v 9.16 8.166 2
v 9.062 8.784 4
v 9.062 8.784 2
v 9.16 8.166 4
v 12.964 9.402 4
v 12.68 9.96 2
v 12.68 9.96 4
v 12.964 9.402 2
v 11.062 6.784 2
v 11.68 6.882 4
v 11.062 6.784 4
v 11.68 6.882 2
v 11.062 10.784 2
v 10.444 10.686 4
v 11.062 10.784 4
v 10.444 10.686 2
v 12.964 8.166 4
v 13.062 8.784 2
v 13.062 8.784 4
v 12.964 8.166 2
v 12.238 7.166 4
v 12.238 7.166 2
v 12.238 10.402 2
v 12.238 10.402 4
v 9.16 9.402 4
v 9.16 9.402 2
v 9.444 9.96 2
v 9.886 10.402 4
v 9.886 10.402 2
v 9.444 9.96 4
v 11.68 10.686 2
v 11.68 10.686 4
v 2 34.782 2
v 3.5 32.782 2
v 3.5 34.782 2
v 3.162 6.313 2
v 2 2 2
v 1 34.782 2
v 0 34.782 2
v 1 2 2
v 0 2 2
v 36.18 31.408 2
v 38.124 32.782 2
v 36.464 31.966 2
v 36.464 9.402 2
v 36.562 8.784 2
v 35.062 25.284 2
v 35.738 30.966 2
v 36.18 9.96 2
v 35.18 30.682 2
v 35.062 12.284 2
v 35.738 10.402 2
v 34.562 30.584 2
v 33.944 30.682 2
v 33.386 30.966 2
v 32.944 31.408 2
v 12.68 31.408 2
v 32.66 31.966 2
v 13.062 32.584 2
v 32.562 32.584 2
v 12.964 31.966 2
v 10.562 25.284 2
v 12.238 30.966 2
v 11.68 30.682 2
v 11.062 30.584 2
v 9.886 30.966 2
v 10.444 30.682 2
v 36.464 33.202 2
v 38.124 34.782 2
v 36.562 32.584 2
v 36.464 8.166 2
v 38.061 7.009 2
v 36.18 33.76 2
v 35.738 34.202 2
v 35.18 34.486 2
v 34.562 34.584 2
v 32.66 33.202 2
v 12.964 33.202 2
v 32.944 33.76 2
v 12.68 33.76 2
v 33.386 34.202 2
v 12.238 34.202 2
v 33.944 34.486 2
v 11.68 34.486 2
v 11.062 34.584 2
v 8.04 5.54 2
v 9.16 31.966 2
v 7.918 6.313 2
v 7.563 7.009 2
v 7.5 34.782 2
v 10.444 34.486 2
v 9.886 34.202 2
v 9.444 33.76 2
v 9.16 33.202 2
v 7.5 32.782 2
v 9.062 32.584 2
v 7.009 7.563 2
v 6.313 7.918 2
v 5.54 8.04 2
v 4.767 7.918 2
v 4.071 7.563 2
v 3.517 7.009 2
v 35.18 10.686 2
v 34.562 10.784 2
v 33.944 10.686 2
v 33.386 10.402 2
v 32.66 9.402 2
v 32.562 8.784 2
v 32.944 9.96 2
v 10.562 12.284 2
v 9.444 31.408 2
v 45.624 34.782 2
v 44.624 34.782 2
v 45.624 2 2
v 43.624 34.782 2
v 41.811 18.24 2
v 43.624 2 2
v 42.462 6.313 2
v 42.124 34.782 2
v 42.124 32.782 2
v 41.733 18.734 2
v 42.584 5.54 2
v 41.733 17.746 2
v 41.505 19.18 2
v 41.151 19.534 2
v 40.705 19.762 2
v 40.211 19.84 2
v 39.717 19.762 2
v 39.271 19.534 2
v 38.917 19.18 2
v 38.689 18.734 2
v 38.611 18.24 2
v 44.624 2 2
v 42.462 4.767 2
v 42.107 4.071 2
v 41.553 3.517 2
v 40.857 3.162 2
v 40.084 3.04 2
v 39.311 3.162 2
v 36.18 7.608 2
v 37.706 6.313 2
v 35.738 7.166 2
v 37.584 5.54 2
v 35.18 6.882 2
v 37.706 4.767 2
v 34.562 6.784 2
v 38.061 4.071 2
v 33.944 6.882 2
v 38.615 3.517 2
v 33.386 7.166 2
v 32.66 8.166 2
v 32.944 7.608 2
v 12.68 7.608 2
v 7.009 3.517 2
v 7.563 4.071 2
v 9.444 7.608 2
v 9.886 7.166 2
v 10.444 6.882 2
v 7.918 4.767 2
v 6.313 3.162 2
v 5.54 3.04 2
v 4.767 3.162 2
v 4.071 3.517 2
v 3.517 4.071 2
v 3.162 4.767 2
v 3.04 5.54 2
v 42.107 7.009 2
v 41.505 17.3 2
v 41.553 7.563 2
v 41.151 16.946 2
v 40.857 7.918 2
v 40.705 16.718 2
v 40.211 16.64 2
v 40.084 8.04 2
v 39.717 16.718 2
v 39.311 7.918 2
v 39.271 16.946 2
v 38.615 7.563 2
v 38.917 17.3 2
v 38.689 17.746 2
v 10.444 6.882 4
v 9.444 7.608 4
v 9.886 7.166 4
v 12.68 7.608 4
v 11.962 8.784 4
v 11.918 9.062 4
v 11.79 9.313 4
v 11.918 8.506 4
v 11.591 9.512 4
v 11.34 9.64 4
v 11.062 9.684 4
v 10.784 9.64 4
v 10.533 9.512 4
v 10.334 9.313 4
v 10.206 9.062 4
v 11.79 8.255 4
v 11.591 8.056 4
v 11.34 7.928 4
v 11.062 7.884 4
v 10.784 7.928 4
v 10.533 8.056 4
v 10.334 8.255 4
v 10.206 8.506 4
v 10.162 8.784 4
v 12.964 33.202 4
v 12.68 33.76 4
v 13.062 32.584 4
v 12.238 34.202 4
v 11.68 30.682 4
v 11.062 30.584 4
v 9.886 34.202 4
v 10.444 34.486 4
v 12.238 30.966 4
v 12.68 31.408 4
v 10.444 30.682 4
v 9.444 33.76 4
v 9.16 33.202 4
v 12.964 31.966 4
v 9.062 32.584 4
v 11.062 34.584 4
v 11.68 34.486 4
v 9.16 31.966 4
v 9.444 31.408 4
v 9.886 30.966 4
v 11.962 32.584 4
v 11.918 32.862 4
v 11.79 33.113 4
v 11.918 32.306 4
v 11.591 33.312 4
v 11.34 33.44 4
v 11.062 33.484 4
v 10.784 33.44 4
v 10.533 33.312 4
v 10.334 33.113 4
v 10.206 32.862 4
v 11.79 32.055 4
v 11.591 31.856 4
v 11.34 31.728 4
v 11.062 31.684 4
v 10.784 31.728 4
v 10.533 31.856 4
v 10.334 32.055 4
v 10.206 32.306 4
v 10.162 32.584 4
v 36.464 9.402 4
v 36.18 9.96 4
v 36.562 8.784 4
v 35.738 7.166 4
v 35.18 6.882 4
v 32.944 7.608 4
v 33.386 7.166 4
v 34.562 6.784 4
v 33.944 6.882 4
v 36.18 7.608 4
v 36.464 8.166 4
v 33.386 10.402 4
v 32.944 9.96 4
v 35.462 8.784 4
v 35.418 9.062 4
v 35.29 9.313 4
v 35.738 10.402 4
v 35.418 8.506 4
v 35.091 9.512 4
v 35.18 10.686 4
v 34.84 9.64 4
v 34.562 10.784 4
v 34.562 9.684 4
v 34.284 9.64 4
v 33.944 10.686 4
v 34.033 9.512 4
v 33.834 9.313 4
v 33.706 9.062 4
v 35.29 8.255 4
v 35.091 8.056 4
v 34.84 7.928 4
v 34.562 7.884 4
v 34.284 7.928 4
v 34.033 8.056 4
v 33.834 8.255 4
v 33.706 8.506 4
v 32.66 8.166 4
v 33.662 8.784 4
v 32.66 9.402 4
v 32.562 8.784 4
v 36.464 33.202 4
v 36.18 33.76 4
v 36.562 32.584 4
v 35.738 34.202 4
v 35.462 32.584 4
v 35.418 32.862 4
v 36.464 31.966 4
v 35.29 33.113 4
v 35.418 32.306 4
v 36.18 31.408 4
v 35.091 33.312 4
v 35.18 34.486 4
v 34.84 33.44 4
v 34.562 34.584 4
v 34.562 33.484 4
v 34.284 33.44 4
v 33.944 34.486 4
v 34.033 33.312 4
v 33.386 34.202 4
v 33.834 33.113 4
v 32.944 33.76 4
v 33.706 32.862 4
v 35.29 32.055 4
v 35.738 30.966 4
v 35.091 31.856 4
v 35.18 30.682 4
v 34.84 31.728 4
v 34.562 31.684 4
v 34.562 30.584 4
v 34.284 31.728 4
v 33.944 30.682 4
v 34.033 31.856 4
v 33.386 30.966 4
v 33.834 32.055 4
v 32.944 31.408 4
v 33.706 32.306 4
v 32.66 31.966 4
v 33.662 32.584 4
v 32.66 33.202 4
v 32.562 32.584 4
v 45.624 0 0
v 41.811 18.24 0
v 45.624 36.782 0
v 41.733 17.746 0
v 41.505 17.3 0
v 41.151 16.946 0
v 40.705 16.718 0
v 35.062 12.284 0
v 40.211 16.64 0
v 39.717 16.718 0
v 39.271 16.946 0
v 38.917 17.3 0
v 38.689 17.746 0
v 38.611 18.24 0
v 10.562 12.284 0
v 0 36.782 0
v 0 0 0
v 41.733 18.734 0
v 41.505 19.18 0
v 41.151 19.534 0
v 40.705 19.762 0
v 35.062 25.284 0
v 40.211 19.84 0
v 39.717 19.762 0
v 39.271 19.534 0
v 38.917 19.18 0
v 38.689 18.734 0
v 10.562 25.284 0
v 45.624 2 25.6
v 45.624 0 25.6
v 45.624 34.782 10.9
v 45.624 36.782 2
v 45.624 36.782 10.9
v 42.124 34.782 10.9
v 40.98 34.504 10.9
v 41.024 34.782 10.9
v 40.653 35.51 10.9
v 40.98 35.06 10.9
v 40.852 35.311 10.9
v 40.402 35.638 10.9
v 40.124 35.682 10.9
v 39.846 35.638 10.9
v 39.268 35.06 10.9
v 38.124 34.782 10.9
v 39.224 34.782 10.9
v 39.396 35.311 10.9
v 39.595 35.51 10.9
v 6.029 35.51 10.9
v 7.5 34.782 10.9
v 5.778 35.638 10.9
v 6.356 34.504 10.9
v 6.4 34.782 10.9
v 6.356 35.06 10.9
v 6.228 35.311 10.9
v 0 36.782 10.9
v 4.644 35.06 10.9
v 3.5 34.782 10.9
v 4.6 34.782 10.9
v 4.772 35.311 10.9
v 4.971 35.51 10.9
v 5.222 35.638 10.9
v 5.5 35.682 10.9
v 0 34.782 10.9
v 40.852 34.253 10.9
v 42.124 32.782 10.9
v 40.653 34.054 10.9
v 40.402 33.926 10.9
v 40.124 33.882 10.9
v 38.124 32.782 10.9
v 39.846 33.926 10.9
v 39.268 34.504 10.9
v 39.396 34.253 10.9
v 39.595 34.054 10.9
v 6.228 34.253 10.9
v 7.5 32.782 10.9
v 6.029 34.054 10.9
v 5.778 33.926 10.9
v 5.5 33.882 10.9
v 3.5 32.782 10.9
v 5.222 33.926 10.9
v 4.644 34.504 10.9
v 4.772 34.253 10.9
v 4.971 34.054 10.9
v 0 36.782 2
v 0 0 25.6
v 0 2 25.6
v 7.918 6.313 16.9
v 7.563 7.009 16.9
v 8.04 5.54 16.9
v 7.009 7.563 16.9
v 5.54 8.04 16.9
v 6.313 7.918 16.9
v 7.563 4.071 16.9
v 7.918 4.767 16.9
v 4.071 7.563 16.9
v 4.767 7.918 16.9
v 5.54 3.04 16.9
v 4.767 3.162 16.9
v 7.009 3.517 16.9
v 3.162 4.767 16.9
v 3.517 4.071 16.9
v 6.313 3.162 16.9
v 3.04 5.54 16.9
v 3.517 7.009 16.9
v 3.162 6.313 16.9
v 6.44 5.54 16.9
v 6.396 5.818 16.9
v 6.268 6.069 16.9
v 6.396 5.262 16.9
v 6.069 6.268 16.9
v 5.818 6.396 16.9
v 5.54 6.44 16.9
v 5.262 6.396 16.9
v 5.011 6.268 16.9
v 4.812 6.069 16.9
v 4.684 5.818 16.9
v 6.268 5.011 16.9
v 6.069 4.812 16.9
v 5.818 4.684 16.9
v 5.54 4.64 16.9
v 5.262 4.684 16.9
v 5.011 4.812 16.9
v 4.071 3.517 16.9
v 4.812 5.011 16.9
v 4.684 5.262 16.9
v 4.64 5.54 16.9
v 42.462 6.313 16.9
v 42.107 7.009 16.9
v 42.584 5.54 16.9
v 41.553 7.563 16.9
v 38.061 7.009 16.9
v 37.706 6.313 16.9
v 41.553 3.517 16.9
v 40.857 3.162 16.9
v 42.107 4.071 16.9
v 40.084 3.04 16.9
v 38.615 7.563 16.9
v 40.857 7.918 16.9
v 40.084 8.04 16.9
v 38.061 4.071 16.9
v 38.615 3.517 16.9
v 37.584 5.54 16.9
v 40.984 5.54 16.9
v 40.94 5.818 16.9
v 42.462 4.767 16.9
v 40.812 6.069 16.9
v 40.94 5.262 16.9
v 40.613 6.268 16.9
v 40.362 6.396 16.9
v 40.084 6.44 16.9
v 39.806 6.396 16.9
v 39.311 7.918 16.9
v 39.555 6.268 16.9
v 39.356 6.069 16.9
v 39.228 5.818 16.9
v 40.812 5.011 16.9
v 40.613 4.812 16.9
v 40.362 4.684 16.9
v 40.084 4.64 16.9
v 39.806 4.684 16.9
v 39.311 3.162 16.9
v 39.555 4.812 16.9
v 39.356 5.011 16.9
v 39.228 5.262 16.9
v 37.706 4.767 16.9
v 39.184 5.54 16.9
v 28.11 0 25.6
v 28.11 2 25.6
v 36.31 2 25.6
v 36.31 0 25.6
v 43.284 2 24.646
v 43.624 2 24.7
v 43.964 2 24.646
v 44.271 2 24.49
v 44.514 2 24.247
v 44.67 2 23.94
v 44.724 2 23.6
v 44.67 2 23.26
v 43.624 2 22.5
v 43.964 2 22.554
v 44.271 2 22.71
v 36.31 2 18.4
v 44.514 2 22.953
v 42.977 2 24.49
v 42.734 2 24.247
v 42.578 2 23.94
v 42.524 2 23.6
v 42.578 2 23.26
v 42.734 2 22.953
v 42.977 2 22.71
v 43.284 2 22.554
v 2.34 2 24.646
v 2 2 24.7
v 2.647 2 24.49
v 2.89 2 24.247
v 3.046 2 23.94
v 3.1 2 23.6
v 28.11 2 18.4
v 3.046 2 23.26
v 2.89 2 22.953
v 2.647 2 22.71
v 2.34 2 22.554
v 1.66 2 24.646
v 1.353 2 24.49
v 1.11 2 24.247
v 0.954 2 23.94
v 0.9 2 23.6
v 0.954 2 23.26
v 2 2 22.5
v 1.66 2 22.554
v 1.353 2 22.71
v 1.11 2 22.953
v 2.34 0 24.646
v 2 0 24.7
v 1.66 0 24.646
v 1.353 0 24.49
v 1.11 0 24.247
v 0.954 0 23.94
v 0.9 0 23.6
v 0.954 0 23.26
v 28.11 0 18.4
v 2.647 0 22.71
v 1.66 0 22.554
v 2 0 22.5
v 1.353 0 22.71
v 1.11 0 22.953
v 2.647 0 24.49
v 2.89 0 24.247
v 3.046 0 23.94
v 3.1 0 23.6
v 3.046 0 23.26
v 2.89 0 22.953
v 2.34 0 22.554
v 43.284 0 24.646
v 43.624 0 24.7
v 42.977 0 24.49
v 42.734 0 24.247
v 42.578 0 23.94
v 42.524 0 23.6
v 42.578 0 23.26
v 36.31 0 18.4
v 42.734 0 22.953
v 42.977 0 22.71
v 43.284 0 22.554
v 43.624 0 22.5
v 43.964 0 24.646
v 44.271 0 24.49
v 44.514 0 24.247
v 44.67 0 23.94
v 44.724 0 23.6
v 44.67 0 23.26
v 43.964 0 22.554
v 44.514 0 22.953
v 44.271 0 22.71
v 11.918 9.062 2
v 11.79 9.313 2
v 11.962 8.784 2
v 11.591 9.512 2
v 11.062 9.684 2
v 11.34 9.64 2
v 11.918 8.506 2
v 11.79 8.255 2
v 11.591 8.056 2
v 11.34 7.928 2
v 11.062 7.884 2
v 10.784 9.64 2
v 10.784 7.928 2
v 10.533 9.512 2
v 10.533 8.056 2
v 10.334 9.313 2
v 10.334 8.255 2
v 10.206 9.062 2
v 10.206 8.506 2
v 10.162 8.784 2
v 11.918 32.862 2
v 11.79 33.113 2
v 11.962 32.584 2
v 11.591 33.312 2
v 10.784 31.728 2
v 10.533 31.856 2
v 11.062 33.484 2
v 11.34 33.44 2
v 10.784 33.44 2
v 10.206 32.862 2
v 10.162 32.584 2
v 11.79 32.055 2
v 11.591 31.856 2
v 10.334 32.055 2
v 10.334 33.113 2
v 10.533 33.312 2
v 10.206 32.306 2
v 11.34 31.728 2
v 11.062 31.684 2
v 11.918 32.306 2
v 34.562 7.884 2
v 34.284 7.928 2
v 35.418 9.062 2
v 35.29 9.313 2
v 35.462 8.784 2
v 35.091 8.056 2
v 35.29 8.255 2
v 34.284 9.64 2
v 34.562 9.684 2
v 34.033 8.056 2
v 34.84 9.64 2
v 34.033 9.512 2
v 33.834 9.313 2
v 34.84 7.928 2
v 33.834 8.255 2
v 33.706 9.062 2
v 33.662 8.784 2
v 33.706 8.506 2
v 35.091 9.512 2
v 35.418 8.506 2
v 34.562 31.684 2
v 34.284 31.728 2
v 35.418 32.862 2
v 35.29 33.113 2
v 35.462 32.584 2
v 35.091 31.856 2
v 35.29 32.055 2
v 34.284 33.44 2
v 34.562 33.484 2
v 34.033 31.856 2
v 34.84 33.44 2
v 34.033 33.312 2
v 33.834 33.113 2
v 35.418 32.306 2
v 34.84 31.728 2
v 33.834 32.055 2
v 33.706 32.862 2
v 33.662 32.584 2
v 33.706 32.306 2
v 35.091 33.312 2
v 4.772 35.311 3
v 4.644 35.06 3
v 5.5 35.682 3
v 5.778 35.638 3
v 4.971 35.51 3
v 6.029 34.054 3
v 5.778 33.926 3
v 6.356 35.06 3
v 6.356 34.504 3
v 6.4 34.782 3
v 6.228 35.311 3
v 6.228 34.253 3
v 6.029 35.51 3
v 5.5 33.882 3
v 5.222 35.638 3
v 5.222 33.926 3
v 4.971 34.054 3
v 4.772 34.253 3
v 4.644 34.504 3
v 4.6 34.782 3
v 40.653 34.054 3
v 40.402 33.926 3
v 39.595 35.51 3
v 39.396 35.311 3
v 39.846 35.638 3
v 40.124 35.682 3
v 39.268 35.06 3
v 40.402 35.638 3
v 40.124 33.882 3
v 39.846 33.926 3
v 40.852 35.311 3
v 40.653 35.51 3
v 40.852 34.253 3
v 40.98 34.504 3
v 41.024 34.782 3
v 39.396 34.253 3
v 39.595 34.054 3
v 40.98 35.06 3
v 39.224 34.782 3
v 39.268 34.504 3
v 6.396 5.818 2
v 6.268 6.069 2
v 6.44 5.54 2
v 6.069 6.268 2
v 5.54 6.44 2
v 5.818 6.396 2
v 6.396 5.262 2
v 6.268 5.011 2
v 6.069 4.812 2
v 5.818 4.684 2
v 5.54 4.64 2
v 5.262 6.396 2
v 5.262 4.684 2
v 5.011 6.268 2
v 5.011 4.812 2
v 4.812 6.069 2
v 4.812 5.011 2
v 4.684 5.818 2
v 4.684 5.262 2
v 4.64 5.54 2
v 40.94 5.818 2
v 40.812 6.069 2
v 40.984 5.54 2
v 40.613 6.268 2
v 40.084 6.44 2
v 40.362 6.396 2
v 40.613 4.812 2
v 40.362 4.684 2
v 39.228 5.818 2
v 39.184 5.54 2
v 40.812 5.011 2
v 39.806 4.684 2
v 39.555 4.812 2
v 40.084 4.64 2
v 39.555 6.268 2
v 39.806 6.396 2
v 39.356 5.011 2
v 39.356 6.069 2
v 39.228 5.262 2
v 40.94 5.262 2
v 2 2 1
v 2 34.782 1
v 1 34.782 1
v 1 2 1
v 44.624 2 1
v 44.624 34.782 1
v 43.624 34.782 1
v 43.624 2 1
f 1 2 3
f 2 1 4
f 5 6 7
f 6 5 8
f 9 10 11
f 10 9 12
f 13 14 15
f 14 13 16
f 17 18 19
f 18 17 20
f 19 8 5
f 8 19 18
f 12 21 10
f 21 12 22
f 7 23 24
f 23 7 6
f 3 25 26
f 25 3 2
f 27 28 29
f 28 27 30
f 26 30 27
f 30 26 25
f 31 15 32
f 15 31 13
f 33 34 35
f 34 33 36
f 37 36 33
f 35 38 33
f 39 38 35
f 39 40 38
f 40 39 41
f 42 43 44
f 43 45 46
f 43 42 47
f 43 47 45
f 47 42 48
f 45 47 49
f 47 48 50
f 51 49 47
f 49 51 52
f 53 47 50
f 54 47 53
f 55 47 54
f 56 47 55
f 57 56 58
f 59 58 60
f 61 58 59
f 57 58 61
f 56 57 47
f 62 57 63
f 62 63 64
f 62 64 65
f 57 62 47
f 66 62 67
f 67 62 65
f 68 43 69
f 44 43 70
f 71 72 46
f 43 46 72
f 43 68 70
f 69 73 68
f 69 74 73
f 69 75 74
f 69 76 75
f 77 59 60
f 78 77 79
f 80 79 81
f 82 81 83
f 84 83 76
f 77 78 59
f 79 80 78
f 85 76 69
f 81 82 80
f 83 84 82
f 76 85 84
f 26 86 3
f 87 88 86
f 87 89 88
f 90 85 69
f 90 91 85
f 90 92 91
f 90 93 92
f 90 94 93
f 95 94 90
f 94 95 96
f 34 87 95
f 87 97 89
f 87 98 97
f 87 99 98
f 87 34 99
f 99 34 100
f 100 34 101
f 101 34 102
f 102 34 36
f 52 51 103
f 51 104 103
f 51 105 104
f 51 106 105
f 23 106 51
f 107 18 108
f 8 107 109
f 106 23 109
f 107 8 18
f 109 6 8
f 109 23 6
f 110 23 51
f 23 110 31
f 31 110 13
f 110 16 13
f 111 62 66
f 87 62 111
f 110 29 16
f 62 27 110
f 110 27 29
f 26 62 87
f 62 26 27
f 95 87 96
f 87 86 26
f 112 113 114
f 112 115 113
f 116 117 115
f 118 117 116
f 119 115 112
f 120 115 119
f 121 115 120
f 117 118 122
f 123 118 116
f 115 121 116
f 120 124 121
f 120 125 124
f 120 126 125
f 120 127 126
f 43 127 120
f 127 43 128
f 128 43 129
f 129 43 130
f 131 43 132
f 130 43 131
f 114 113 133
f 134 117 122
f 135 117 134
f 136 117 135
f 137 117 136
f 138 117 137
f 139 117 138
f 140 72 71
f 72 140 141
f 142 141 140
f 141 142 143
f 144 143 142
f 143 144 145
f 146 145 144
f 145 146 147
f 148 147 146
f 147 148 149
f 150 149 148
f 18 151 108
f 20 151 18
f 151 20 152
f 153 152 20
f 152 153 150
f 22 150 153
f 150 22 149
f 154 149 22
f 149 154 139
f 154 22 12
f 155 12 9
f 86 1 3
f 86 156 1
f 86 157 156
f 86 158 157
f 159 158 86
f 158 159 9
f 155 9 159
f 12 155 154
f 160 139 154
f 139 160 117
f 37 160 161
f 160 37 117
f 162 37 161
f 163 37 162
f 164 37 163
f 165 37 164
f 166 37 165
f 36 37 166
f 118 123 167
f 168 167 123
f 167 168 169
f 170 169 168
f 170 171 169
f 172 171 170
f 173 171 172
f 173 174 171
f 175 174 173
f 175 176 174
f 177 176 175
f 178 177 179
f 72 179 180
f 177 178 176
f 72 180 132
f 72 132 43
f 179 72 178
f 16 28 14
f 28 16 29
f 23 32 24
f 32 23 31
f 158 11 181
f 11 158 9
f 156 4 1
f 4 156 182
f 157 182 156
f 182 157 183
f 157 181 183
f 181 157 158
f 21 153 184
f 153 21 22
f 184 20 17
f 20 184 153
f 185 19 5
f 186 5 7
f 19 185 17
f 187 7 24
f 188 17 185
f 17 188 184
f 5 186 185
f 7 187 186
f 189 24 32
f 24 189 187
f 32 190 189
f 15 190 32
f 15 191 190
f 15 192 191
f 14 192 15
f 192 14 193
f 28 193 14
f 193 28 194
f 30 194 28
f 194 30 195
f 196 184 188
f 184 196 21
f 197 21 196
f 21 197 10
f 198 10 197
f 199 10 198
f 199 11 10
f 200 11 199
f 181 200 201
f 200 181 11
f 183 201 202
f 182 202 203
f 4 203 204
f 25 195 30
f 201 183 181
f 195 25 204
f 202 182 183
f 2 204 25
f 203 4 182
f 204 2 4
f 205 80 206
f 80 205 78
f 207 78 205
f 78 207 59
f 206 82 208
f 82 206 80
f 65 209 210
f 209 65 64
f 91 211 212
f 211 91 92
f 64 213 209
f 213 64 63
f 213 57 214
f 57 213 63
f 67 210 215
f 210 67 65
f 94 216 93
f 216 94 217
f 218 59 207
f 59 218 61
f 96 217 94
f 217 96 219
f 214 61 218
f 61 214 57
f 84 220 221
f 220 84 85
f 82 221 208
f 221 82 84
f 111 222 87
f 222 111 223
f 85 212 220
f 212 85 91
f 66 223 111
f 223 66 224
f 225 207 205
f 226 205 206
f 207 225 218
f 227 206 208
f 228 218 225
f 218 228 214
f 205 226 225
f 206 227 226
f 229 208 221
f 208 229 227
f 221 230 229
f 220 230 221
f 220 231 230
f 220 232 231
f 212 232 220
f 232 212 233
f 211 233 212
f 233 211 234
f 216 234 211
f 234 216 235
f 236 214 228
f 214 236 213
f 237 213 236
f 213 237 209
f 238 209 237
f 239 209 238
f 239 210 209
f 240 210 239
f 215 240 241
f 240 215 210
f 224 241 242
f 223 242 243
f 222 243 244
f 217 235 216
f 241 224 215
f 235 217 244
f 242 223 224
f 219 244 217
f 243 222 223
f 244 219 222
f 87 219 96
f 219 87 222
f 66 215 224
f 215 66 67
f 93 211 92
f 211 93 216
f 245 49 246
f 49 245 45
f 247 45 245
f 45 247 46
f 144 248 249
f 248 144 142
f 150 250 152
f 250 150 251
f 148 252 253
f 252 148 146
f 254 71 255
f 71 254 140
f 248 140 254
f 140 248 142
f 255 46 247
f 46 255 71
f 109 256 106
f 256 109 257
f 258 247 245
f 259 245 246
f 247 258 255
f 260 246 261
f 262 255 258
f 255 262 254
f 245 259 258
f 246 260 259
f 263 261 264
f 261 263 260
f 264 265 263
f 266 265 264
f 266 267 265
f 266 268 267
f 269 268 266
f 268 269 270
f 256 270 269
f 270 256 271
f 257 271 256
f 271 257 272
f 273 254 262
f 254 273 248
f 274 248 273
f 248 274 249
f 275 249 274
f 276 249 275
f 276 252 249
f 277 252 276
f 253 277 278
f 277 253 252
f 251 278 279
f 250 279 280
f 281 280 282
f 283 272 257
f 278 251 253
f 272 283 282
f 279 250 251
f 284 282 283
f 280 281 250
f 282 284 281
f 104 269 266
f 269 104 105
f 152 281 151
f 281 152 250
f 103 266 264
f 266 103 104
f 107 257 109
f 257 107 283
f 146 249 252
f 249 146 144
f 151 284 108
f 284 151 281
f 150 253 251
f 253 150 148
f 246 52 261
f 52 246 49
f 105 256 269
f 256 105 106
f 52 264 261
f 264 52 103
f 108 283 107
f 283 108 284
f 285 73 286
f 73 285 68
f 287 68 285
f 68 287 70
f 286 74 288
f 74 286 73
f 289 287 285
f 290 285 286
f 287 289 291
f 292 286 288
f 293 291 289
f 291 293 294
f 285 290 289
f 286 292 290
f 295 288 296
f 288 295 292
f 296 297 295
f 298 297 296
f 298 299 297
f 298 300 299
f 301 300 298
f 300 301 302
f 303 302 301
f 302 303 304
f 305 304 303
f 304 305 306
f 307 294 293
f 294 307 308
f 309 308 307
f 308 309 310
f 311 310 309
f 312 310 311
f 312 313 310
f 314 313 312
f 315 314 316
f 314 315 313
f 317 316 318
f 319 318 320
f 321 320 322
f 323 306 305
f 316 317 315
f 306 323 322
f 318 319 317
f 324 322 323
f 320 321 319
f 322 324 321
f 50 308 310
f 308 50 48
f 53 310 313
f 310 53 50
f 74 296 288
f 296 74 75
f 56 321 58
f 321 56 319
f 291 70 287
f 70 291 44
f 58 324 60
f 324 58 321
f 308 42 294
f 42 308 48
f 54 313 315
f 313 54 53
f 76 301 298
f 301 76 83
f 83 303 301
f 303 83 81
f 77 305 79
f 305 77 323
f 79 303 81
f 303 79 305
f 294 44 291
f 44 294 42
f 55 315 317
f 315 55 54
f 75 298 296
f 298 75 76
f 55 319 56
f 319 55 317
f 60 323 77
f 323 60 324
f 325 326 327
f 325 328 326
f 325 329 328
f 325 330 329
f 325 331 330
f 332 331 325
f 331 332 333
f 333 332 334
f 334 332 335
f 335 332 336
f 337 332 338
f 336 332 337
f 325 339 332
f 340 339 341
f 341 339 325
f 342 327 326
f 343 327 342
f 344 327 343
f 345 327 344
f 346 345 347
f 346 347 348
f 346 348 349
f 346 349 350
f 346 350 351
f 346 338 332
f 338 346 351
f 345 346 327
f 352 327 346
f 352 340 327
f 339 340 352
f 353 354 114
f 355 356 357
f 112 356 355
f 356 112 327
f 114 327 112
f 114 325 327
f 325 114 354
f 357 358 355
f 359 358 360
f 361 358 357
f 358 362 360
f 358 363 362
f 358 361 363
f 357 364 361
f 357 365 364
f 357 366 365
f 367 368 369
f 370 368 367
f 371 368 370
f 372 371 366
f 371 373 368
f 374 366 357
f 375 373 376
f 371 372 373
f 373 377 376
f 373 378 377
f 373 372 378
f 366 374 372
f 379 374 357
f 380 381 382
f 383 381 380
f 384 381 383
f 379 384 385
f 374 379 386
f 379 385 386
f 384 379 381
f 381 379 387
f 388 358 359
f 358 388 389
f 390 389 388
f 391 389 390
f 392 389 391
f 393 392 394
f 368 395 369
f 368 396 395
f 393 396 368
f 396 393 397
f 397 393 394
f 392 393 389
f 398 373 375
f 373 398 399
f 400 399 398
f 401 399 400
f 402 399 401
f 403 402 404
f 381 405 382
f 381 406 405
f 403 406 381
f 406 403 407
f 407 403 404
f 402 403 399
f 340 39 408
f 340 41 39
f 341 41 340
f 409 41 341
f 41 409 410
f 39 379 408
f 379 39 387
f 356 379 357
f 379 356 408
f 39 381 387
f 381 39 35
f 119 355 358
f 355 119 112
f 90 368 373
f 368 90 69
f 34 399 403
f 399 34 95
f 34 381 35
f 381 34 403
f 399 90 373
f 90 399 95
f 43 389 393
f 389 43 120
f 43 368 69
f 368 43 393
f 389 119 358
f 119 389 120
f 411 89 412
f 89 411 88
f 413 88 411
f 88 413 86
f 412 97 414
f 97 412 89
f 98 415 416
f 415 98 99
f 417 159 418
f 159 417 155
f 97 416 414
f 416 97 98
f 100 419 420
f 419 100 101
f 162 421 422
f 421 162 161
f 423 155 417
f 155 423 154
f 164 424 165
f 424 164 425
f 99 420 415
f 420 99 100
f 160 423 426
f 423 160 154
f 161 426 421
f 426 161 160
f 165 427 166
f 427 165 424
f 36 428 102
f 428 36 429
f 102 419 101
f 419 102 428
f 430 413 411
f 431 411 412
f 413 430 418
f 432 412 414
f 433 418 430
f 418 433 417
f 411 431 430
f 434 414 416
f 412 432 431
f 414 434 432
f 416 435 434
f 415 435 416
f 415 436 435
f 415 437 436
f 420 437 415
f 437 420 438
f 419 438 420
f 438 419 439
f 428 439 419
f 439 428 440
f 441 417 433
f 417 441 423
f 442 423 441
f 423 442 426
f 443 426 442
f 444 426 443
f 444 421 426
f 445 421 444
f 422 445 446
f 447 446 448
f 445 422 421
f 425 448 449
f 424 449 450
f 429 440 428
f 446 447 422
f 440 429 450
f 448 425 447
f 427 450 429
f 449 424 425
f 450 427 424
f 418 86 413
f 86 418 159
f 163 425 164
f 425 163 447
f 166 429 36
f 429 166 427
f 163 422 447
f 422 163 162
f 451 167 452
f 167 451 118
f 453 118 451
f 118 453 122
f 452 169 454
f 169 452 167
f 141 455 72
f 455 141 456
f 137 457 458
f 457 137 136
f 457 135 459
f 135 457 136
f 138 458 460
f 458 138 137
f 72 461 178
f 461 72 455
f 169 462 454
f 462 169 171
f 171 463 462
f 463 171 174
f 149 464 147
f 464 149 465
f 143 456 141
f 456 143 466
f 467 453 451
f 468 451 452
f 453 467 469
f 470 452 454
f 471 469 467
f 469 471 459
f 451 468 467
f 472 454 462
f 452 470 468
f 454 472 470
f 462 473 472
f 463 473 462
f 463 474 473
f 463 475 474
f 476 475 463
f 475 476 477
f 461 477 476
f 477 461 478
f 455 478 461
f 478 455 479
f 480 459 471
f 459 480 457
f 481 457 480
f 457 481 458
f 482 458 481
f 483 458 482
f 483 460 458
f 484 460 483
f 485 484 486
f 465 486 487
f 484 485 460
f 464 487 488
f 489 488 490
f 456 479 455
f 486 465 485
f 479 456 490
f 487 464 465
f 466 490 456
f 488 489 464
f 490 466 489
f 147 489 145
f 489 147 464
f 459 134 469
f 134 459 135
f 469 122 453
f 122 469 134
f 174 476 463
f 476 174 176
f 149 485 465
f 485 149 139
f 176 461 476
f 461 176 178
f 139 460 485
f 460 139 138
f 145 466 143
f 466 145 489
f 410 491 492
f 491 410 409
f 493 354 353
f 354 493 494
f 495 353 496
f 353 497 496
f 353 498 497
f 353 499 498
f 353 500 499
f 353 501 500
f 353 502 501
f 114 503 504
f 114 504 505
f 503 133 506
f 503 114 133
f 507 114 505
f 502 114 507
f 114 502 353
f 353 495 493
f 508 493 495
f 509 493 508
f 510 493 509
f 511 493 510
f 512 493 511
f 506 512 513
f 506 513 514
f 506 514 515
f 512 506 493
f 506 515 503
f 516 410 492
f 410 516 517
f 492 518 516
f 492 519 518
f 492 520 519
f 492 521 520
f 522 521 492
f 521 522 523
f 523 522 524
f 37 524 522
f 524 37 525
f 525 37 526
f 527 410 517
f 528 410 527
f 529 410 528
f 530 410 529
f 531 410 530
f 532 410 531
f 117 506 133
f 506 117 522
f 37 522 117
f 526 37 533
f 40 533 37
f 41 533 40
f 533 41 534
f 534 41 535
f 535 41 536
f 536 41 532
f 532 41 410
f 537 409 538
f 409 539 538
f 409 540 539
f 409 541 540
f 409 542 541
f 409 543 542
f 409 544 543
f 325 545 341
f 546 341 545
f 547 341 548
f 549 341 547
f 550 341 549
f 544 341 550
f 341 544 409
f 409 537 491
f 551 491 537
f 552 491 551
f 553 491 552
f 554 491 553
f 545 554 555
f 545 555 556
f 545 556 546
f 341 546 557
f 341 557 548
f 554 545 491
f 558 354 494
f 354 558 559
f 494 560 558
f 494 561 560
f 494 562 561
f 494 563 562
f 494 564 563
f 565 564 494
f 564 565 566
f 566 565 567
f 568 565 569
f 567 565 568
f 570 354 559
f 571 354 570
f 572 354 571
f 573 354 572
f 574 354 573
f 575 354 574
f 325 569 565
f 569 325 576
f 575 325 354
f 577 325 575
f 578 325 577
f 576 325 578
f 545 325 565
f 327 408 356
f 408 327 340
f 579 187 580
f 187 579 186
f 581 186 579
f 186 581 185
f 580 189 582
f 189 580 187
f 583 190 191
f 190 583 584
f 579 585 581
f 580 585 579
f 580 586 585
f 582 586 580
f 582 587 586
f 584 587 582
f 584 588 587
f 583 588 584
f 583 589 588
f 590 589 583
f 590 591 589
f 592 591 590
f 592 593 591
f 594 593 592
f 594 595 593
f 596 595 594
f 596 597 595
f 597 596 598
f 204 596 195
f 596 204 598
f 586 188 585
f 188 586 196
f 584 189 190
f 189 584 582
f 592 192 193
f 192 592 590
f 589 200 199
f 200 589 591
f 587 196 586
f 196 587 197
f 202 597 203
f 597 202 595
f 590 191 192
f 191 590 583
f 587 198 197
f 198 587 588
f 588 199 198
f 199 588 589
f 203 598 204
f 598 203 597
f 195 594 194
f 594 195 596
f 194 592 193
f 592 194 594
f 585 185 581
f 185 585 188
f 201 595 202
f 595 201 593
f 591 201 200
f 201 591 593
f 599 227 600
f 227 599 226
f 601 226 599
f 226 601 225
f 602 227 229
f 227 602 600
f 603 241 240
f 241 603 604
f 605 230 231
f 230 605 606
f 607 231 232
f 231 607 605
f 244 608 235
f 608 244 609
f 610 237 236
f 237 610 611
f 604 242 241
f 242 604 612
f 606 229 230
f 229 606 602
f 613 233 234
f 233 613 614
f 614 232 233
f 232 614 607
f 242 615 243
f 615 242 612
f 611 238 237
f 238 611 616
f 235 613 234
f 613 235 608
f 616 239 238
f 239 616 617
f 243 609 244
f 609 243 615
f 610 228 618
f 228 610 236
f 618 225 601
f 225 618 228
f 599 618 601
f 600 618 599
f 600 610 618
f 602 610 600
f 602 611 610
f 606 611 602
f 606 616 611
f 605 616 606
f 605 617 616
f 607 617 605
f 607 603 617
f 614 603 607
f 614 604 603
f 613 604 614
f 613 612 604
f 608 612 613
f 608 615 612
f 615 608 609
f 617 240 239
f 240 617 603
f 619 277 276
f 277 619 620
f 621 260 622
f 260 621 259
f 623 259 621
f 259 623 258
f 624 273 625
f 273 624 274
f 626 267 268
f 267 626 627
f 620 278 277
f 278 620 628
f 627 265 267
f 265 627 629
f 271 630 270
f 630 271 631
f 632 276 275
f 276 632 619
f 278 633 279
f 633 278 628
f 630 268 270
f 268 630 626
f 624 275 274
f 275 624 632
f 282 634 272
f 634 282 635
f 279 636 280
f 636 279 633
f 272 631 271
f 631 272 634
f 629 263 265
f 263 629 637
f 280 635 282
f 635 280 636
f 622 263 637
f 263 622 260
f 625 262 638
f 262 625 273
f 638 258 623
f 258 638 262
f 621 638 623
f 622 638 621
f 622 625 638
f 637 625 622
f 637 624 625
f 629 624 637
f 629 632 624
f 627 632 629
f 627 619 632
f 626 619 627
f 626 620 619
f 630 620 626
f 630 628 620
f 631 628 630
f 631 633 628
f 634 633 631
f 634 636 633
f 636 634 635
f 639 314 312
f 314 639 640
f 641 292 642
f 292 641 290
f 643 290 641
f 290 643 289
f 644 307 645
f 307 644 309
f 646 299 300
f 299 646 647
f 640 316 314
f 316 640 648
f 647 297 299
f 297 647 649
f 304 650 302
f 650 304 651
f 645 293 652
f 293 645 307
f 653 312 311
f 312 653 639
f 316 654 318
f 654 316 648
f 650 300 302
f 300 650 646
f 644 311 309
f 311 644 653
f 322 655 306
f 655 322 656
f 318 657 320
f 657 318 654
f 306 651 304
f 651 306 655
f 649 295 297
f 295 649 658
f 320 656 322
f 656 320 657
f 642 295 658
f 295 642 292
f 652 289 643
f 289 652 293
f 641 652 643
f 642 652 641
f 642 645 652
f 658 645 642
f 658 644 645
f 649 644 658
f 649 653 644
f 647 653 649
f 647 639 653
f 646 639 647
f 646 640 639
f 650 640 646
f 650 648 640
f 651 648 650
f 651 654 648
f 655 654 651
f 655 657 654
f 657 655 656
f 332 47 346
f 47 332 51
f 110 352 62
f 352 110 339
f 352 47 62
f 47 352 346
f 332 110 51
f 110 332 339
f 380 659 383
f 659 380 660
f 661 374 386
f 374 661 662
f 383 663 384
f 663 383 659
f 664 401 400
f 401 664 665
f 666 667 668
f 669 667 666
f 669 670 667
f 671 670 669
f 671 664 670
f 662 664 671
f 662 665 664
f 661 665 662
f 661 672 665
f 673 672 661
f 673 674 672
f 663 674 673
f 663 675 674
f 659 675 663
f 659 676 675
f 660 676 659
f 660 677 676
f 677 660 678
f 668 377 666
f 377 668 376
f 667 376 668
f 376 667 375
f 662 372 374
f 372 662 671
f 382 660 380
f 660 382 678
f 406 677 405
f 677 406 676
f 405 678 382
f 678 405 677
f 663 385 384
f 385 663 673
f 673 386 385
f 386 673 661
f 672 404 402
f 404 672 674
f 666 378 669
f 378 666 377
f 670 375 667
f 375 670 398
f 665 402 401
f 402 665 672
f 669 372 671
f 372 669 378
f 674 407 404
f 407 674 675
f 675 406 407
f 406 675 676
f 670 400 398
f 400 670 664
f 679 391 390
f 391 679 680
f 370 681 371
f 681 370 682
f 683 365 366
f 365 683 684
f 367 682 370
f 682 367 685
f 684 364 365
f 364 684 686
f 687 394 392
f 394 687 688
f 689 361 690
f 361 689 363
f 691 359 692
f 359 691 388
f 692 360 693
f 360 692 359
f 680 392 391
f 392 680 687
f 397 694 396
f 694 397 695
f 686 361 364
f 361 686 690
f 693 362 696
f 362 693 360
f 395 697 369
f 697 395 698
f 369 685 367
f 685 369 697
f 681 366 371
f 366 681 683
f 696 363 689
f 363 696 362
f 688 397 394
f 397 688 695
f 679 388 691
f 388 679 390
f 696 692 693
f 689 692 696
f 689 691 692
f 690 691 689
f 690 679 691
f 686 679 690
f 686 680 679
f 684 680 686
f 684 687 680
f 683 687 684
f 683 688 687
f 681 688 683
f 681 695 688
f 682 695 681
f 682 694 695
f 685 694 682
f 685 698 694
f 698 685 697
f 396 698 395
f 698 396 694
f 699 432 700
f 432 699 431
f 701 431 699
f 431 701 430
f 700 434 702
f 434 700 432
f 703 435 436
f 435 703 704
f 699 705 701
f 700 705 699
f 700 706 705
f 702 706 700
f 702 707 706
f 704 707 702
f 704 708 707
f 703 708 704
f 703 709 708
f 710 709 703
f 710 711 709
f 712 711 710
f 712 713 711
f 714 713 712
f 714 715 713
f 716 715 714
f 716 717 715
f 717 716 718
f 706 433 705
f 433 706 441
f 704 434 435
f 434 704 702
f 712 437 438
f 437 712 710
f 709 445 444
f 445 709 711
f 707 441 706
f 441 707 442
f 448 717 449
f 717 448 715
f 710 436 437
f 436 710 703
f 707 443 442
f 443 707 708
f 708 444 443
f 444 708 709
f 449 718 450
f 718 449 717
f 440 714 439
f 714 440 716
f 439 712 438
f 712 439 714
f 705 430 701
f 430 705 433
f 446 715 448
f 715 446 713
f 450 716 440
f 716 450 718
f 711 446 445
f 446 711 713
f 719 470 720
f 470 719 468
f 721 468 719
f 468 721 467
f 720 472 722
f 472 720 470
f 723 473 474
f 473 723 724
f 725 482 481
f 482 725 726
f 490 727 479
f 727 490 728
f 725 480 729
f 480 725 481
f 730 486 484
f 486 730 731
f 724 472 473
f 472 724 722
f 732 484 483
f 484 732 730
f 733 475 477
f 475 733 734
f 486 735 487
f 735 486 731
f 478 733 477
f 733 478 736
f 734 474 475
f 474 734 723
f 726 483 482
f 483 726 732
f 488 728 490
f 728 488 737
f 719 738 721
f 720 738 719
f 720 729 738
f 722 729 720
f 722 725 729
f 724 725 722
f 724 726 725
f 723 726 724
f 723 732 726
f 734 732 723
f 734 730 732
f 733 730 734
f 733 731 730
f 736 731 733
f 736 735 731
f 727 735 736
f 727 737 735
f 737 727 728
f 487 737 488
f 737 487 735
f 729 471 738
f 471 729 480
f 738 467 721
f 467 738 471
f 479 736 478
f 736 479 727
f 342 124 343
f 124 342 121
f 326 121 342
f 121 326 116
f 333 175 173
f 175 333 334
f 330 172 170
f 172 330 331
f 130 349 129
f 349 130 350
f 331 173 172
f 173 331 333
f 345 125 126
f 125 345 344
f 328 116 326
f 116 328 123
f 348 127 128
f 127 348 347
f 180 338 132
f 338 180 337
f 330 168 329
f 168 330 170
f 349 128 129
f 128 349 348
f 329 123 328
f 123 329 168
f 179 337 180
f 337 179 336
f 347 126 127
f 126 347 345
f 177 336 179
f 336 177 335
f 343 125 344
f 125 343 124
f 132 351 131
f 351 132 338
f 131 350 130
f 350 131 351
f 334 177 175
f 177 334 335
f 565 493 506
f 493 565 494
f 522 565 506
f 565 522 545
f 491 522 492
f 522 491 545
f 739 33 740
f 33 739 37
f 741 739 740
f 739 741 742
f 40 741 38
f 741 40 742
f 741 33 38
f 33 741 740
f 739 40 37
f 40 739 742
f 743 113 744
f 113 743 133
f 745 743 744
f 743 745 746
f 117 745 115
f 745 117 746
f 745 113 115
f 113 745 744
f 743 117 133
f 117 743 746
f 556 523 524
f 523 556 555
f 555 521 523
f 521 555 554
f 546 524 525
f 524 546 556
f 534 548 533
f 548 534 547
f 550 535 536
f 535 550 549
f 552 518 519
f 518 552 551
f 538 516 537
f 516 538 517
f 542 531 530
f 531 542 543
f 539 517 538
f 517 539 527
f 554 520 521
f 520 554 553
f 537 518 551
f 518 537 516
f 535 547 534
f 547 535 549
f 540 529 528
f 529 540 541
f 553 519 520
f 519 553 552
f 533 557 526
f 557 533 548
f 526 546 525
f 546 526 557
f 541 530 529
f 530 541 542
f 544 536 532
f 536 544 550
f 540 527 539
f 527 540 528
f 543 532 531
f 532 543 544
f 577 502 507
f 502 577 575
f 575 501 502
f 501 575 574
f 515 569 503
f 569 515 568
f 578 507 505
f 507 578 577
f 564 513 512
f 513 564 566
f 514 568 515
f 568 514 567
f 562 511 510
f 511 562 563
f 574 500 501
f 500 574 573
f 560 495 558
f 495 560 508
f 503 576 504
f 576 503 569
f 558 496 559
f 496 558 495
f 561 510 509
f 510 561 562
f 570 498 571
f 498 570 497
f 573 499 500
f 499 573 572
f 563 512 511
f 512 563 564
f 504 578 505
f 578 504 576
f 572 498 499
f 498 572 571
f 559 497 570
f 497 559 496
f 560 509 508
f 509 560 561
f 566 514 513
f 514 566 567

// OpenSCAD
// file: settings.scad
// SPDX-FileCopyrightText: 2022-2024 Rafael G. Martins <rafael@rafaelmartins.eng.br>
// SPDX-License-Identifier: CERN-OHL-S-2.0

include <../lib/ssd1306.scad>

screw_d = 2;
screw_h = 8;
thickness = 2;
gap = 0;

front_screw_padding = 3.5;

pcb_base_d = 5;
pcb_base_screw_d = 1.8;
pcb_screw_padding = 2.54;
pcb_thickness = 1.6;

pcb_gap = 1;
pcb_padding_x = thickness + pcb_gap;
pcb_padding_y = thickness + pcb_gap;

display_pcb_length = 39.624;
display_pcb_width = 33.782;

display_pcb0_x = pcb_padding_x;
display_pcb0_y = pcb_padding_y;

display_length = display_pcb_length + 2 * pcb_padding_x;
display_width = display_pcb_width + pcb_padding_y;

switches_pcb_length = 84.582;
switches_pcb_width = 45.974;

switches_length = switches_pcb_length + 2 * pcb_padding_x;
switches_width = switches_pcb_width + 2 * pcb_padding_y;

switches_pcb_base_distance_x = 39.751;
switches_pcb_base_distance_y = 20.447;

oled_socket_height = 8.5;
oled_pin0_y = 5.334;
oled0_x = (display_length - ssd1306_pcb_base_spacing_x) / 2;
oled0_y = display_pcb0_y + oled_pin0_y + ssd1306_pin_distance_y;

display_pcb_base_distance = 34.544;
display_pcb_base_height = 2.8 + oled_socket_height + ssd1306_pcb_thickness + ssd1306_pcb_base_height;

switches_pcb_base_height = 6 - thickness;

usb_height = 4.4;
usb_width = 8.2;
usb_distance_x = pcb_padding_x + 29.210 - usb_width / 2;
usb_distance_z = thickness + display_pcb_base_height + pcb_thickness - 0.1;

display_height = usb_distance_z + usb_height + 0.8 + thickness;
display_height_in = display_pcb_base_height - switches_pcb_base_height - thickness;

switches_height = display_height - display_pcb_base_height + switches_pcb_base_height;

led0_x = 37.211;
led0_y = 15.24;
led_d = 3.2;

key_dim = 16;
key_distance = 19.304;
key0_x = 13.335 - key_dim / 2;
key0_y = key0_x;

base_screw_d = 1.8;
base_screw_h = 5;
base_screw_padding = 8;
base_screw_padding_bottom = 25;

base_length = switches_length;
base_width = display_width + switches_width - pcb_gap - thickness;
base_height = 16;

back_screw3_padding = 10;
// file: ../lib/ssd1306.scad
// SPDX-FileCopyrightText: 2022-2024 Rafael G. Martins <rafael@rafaelmartins.eng.br>
// SPDX-License-Identifier: CERN-OHL-S-2.0

ssd1306_pcb_thickness = 1.6;
ssd1306_pcb_base_height = 2;
ssd1306_pcb_base_d = 4;
ssd1306_pcb_base_screw_d = 1.8;
ssd1306_pcb_base_spacing_x = 23.5;
ssd1306_pcb_base_spacing_y = 23.8;
ssd1306_screen_width = 24.5;
ssd1306_screen_height = 13;
ssd1306_screen_distance_x = (ssd1306_pcb_base_spacing_x - ssd1306_screen_width) / 2;
ssd1306_screen_distance_y = 3.5;
ssd1306_pin_distance_y = 0.45;


module ssd1306_add(thickness) {
    translate([-ssd1306_pcb_base_d / 2, -ssd1306_pcb_base_d / 2, 0])
        cube([ssd1306_pcb_base_spacing_x + ssd1306_pcb_base_d,
              ssd1306_pcb_base_spacing_y + ssd1306_pcb_base_d,
              thickness]);

    for(i=[0:1])
        for(j=[0:1])
            translate([i * ssd1306_pcb_base_spacing_x, j * ssd1306_pcb_base_spacing_y, thickness])
                cylinder(ssd1306_pcb_base_height, d=ssd1306_pcb_base_d, $fn=20);
}


module ssd1306_sub(thickness) {
    translate([ssd1306_screen_distance_x, ssd1306_screen_distance_y, 0])
        cube([ssd1306_screen_width, ssd1306_screen_height, thickness]);

    for(i=[0:1])
        for(j=[0:1])
            translate([i * ssd1306_pcb_base_spacing_x, j * ssd1306_pcb_base_spacing_y, thickness])
                cylinder(ssd1306_pcb_base_height, d=ssd1306_pcb_base_screw_d, $fn=20);
}
// file: ../lib/screw-base.scad
// SPDX-FileCopyrightText: 2022-2024 Rafael G. Martins <rafael@rafaelmartins.eng.br>
// SPDX-License-Identifier: CERN-OHL-S-2.0

function screw_base_dim(screw_d) = screw_d + 2;
function screw_base_height(screw_h) = screw_h + 1;


module screw_base_add(screw_d, screw_h) {
    cube([screw_base_dim(screw_d), screw_base_dim(screw_d), screw_base_height(screw_h)]);
}


module screw_base_sub(screw_d, screw_h) {
    translate([screw_base_dim(screw_d) / 2, screw_base_dim(screw_d) / 2, 0])
        cylinder(screw_h, d=screw_d - 0.2, $fn=20);
}
// main file
// SPDX-FileCopyrightText: 2022-2024 Rafael G. Martins <rafael@rafaelmartins.eng.br>
// SPDX-License-Identifier: CERN-OHL-S-2.0

include <../lib/screw-base.scad>
include <../lib/ssd1306.scad>
include <settings.scad>


difference() {
    union() {
        cube([display_length, thickness, display_height]);
        cube([display_length, display_width, thickness]);

        translate([oled0_x, oled0_y, 0])
            ssd1306_add(thickness);

        translate([0, display_width - thickness, thickness]) {
            cube([display_length, thickness, display_height_in]);

            translate([front_screw_padding, -screw_base_dim(screw_d) / 2,
                       screw_base_height(display_height_in - 1)])
                rotate([180, 0, 90])
                    screw_base_add(screw_d, display_height_in - 1);
            translate([display_length - front_screw_padding - screw_base_dim(screw_d),
                       -screw_base_dim(screw_d) / 2, screw_base_height(display_height_in - 1)])
                rotate([180, 0, 90])
                    screw_base_add(screw_d, display_height_in - 1);
        }

        translate([display_pcb0_x, display_pcb0_y, 0]) {
            translate([pcb_screw_padding, pcb_screw_padding, thickness]) {
                cylinder(h=display_pcb_base_height, d=pcb_base_d, $fn=20);
                translate([display_pcb_base_distance, 0, 0])
                    cylinder(h=display_pcb_base_height, d=pcb_base_d, $fn=20);
            }
        }
    }

    translate([oled0_x, oled0_y, 0])
        ssd1306_sub(thickness);

    translate([0, display_width - thickness, thickness]) {
        translate([front_screw_padding, -screw_base_dim(screw_d) / 2,
                   screw_base_height(display_height_in - 1)])
            rotate([180, 0, 90])
                screw_base_sub(screw_d, display_height_in - 1);
        translate([display_length - front_screw_padding - screw_base_dim(screw_d),
                   -screw_base_dim(screw_d) / 2, screw_base_height(display_height_in - 1)])
            rotate([180, 0, 90])
                screw_base_sub(screw_d, display_height_in - 1);
    }

    translate([display_pcb0_x, display_pcb0_y, 0]) {
        translate([pcb_screw_padding, pcb_screw_padding, thickness]) {
            cylinder(h=display_pcb_base_height, d=pcb_base_screw_d, $fn=20);
            translate([display_pcb_base_distance, 0, 0])
                cylinder(h=display_pcb_base_height, d=pcb_base_screw_d, $fn=20);
        }

        translate([led0_x, led0_y, 0])
            cylinder(h=thickness, d=led_d, $fn=20);
    }

    translate([usb_distance_x, 0, usb_distance_z])
        cube([usb_width, thickness, display_height - usb_distance_z]);

    translate([(thickness - gap) / 2, thickness, thickness / 2])
        cube([thickness / 2 + gap, display_width - 2 * thickness, thickness / 2]);
    translate([display_length - thickness - gap / 2, thickness, thickness / 2])
        cube([thickness / 2 + gap, display_width - 2 * thickness, thickness / 2]);

    translate([screw_base_dim(screw_d) / 2, 0, display_height - screw_base_dim(screw_d) / 2])
        rotate([-90, 0, 0])
            cylinder(h=thickness, d=screw_d * 1.1, $fn=20);
    translate([display_length - screw_base_dim(screw_d) / 2, 0,
               display_height - screw_base_dim(screw_d) / 2])
        rotate([-90, 0, 0])
            cylinder(h=thickness, d=screw_d * 1.1, $fn=20);
}
